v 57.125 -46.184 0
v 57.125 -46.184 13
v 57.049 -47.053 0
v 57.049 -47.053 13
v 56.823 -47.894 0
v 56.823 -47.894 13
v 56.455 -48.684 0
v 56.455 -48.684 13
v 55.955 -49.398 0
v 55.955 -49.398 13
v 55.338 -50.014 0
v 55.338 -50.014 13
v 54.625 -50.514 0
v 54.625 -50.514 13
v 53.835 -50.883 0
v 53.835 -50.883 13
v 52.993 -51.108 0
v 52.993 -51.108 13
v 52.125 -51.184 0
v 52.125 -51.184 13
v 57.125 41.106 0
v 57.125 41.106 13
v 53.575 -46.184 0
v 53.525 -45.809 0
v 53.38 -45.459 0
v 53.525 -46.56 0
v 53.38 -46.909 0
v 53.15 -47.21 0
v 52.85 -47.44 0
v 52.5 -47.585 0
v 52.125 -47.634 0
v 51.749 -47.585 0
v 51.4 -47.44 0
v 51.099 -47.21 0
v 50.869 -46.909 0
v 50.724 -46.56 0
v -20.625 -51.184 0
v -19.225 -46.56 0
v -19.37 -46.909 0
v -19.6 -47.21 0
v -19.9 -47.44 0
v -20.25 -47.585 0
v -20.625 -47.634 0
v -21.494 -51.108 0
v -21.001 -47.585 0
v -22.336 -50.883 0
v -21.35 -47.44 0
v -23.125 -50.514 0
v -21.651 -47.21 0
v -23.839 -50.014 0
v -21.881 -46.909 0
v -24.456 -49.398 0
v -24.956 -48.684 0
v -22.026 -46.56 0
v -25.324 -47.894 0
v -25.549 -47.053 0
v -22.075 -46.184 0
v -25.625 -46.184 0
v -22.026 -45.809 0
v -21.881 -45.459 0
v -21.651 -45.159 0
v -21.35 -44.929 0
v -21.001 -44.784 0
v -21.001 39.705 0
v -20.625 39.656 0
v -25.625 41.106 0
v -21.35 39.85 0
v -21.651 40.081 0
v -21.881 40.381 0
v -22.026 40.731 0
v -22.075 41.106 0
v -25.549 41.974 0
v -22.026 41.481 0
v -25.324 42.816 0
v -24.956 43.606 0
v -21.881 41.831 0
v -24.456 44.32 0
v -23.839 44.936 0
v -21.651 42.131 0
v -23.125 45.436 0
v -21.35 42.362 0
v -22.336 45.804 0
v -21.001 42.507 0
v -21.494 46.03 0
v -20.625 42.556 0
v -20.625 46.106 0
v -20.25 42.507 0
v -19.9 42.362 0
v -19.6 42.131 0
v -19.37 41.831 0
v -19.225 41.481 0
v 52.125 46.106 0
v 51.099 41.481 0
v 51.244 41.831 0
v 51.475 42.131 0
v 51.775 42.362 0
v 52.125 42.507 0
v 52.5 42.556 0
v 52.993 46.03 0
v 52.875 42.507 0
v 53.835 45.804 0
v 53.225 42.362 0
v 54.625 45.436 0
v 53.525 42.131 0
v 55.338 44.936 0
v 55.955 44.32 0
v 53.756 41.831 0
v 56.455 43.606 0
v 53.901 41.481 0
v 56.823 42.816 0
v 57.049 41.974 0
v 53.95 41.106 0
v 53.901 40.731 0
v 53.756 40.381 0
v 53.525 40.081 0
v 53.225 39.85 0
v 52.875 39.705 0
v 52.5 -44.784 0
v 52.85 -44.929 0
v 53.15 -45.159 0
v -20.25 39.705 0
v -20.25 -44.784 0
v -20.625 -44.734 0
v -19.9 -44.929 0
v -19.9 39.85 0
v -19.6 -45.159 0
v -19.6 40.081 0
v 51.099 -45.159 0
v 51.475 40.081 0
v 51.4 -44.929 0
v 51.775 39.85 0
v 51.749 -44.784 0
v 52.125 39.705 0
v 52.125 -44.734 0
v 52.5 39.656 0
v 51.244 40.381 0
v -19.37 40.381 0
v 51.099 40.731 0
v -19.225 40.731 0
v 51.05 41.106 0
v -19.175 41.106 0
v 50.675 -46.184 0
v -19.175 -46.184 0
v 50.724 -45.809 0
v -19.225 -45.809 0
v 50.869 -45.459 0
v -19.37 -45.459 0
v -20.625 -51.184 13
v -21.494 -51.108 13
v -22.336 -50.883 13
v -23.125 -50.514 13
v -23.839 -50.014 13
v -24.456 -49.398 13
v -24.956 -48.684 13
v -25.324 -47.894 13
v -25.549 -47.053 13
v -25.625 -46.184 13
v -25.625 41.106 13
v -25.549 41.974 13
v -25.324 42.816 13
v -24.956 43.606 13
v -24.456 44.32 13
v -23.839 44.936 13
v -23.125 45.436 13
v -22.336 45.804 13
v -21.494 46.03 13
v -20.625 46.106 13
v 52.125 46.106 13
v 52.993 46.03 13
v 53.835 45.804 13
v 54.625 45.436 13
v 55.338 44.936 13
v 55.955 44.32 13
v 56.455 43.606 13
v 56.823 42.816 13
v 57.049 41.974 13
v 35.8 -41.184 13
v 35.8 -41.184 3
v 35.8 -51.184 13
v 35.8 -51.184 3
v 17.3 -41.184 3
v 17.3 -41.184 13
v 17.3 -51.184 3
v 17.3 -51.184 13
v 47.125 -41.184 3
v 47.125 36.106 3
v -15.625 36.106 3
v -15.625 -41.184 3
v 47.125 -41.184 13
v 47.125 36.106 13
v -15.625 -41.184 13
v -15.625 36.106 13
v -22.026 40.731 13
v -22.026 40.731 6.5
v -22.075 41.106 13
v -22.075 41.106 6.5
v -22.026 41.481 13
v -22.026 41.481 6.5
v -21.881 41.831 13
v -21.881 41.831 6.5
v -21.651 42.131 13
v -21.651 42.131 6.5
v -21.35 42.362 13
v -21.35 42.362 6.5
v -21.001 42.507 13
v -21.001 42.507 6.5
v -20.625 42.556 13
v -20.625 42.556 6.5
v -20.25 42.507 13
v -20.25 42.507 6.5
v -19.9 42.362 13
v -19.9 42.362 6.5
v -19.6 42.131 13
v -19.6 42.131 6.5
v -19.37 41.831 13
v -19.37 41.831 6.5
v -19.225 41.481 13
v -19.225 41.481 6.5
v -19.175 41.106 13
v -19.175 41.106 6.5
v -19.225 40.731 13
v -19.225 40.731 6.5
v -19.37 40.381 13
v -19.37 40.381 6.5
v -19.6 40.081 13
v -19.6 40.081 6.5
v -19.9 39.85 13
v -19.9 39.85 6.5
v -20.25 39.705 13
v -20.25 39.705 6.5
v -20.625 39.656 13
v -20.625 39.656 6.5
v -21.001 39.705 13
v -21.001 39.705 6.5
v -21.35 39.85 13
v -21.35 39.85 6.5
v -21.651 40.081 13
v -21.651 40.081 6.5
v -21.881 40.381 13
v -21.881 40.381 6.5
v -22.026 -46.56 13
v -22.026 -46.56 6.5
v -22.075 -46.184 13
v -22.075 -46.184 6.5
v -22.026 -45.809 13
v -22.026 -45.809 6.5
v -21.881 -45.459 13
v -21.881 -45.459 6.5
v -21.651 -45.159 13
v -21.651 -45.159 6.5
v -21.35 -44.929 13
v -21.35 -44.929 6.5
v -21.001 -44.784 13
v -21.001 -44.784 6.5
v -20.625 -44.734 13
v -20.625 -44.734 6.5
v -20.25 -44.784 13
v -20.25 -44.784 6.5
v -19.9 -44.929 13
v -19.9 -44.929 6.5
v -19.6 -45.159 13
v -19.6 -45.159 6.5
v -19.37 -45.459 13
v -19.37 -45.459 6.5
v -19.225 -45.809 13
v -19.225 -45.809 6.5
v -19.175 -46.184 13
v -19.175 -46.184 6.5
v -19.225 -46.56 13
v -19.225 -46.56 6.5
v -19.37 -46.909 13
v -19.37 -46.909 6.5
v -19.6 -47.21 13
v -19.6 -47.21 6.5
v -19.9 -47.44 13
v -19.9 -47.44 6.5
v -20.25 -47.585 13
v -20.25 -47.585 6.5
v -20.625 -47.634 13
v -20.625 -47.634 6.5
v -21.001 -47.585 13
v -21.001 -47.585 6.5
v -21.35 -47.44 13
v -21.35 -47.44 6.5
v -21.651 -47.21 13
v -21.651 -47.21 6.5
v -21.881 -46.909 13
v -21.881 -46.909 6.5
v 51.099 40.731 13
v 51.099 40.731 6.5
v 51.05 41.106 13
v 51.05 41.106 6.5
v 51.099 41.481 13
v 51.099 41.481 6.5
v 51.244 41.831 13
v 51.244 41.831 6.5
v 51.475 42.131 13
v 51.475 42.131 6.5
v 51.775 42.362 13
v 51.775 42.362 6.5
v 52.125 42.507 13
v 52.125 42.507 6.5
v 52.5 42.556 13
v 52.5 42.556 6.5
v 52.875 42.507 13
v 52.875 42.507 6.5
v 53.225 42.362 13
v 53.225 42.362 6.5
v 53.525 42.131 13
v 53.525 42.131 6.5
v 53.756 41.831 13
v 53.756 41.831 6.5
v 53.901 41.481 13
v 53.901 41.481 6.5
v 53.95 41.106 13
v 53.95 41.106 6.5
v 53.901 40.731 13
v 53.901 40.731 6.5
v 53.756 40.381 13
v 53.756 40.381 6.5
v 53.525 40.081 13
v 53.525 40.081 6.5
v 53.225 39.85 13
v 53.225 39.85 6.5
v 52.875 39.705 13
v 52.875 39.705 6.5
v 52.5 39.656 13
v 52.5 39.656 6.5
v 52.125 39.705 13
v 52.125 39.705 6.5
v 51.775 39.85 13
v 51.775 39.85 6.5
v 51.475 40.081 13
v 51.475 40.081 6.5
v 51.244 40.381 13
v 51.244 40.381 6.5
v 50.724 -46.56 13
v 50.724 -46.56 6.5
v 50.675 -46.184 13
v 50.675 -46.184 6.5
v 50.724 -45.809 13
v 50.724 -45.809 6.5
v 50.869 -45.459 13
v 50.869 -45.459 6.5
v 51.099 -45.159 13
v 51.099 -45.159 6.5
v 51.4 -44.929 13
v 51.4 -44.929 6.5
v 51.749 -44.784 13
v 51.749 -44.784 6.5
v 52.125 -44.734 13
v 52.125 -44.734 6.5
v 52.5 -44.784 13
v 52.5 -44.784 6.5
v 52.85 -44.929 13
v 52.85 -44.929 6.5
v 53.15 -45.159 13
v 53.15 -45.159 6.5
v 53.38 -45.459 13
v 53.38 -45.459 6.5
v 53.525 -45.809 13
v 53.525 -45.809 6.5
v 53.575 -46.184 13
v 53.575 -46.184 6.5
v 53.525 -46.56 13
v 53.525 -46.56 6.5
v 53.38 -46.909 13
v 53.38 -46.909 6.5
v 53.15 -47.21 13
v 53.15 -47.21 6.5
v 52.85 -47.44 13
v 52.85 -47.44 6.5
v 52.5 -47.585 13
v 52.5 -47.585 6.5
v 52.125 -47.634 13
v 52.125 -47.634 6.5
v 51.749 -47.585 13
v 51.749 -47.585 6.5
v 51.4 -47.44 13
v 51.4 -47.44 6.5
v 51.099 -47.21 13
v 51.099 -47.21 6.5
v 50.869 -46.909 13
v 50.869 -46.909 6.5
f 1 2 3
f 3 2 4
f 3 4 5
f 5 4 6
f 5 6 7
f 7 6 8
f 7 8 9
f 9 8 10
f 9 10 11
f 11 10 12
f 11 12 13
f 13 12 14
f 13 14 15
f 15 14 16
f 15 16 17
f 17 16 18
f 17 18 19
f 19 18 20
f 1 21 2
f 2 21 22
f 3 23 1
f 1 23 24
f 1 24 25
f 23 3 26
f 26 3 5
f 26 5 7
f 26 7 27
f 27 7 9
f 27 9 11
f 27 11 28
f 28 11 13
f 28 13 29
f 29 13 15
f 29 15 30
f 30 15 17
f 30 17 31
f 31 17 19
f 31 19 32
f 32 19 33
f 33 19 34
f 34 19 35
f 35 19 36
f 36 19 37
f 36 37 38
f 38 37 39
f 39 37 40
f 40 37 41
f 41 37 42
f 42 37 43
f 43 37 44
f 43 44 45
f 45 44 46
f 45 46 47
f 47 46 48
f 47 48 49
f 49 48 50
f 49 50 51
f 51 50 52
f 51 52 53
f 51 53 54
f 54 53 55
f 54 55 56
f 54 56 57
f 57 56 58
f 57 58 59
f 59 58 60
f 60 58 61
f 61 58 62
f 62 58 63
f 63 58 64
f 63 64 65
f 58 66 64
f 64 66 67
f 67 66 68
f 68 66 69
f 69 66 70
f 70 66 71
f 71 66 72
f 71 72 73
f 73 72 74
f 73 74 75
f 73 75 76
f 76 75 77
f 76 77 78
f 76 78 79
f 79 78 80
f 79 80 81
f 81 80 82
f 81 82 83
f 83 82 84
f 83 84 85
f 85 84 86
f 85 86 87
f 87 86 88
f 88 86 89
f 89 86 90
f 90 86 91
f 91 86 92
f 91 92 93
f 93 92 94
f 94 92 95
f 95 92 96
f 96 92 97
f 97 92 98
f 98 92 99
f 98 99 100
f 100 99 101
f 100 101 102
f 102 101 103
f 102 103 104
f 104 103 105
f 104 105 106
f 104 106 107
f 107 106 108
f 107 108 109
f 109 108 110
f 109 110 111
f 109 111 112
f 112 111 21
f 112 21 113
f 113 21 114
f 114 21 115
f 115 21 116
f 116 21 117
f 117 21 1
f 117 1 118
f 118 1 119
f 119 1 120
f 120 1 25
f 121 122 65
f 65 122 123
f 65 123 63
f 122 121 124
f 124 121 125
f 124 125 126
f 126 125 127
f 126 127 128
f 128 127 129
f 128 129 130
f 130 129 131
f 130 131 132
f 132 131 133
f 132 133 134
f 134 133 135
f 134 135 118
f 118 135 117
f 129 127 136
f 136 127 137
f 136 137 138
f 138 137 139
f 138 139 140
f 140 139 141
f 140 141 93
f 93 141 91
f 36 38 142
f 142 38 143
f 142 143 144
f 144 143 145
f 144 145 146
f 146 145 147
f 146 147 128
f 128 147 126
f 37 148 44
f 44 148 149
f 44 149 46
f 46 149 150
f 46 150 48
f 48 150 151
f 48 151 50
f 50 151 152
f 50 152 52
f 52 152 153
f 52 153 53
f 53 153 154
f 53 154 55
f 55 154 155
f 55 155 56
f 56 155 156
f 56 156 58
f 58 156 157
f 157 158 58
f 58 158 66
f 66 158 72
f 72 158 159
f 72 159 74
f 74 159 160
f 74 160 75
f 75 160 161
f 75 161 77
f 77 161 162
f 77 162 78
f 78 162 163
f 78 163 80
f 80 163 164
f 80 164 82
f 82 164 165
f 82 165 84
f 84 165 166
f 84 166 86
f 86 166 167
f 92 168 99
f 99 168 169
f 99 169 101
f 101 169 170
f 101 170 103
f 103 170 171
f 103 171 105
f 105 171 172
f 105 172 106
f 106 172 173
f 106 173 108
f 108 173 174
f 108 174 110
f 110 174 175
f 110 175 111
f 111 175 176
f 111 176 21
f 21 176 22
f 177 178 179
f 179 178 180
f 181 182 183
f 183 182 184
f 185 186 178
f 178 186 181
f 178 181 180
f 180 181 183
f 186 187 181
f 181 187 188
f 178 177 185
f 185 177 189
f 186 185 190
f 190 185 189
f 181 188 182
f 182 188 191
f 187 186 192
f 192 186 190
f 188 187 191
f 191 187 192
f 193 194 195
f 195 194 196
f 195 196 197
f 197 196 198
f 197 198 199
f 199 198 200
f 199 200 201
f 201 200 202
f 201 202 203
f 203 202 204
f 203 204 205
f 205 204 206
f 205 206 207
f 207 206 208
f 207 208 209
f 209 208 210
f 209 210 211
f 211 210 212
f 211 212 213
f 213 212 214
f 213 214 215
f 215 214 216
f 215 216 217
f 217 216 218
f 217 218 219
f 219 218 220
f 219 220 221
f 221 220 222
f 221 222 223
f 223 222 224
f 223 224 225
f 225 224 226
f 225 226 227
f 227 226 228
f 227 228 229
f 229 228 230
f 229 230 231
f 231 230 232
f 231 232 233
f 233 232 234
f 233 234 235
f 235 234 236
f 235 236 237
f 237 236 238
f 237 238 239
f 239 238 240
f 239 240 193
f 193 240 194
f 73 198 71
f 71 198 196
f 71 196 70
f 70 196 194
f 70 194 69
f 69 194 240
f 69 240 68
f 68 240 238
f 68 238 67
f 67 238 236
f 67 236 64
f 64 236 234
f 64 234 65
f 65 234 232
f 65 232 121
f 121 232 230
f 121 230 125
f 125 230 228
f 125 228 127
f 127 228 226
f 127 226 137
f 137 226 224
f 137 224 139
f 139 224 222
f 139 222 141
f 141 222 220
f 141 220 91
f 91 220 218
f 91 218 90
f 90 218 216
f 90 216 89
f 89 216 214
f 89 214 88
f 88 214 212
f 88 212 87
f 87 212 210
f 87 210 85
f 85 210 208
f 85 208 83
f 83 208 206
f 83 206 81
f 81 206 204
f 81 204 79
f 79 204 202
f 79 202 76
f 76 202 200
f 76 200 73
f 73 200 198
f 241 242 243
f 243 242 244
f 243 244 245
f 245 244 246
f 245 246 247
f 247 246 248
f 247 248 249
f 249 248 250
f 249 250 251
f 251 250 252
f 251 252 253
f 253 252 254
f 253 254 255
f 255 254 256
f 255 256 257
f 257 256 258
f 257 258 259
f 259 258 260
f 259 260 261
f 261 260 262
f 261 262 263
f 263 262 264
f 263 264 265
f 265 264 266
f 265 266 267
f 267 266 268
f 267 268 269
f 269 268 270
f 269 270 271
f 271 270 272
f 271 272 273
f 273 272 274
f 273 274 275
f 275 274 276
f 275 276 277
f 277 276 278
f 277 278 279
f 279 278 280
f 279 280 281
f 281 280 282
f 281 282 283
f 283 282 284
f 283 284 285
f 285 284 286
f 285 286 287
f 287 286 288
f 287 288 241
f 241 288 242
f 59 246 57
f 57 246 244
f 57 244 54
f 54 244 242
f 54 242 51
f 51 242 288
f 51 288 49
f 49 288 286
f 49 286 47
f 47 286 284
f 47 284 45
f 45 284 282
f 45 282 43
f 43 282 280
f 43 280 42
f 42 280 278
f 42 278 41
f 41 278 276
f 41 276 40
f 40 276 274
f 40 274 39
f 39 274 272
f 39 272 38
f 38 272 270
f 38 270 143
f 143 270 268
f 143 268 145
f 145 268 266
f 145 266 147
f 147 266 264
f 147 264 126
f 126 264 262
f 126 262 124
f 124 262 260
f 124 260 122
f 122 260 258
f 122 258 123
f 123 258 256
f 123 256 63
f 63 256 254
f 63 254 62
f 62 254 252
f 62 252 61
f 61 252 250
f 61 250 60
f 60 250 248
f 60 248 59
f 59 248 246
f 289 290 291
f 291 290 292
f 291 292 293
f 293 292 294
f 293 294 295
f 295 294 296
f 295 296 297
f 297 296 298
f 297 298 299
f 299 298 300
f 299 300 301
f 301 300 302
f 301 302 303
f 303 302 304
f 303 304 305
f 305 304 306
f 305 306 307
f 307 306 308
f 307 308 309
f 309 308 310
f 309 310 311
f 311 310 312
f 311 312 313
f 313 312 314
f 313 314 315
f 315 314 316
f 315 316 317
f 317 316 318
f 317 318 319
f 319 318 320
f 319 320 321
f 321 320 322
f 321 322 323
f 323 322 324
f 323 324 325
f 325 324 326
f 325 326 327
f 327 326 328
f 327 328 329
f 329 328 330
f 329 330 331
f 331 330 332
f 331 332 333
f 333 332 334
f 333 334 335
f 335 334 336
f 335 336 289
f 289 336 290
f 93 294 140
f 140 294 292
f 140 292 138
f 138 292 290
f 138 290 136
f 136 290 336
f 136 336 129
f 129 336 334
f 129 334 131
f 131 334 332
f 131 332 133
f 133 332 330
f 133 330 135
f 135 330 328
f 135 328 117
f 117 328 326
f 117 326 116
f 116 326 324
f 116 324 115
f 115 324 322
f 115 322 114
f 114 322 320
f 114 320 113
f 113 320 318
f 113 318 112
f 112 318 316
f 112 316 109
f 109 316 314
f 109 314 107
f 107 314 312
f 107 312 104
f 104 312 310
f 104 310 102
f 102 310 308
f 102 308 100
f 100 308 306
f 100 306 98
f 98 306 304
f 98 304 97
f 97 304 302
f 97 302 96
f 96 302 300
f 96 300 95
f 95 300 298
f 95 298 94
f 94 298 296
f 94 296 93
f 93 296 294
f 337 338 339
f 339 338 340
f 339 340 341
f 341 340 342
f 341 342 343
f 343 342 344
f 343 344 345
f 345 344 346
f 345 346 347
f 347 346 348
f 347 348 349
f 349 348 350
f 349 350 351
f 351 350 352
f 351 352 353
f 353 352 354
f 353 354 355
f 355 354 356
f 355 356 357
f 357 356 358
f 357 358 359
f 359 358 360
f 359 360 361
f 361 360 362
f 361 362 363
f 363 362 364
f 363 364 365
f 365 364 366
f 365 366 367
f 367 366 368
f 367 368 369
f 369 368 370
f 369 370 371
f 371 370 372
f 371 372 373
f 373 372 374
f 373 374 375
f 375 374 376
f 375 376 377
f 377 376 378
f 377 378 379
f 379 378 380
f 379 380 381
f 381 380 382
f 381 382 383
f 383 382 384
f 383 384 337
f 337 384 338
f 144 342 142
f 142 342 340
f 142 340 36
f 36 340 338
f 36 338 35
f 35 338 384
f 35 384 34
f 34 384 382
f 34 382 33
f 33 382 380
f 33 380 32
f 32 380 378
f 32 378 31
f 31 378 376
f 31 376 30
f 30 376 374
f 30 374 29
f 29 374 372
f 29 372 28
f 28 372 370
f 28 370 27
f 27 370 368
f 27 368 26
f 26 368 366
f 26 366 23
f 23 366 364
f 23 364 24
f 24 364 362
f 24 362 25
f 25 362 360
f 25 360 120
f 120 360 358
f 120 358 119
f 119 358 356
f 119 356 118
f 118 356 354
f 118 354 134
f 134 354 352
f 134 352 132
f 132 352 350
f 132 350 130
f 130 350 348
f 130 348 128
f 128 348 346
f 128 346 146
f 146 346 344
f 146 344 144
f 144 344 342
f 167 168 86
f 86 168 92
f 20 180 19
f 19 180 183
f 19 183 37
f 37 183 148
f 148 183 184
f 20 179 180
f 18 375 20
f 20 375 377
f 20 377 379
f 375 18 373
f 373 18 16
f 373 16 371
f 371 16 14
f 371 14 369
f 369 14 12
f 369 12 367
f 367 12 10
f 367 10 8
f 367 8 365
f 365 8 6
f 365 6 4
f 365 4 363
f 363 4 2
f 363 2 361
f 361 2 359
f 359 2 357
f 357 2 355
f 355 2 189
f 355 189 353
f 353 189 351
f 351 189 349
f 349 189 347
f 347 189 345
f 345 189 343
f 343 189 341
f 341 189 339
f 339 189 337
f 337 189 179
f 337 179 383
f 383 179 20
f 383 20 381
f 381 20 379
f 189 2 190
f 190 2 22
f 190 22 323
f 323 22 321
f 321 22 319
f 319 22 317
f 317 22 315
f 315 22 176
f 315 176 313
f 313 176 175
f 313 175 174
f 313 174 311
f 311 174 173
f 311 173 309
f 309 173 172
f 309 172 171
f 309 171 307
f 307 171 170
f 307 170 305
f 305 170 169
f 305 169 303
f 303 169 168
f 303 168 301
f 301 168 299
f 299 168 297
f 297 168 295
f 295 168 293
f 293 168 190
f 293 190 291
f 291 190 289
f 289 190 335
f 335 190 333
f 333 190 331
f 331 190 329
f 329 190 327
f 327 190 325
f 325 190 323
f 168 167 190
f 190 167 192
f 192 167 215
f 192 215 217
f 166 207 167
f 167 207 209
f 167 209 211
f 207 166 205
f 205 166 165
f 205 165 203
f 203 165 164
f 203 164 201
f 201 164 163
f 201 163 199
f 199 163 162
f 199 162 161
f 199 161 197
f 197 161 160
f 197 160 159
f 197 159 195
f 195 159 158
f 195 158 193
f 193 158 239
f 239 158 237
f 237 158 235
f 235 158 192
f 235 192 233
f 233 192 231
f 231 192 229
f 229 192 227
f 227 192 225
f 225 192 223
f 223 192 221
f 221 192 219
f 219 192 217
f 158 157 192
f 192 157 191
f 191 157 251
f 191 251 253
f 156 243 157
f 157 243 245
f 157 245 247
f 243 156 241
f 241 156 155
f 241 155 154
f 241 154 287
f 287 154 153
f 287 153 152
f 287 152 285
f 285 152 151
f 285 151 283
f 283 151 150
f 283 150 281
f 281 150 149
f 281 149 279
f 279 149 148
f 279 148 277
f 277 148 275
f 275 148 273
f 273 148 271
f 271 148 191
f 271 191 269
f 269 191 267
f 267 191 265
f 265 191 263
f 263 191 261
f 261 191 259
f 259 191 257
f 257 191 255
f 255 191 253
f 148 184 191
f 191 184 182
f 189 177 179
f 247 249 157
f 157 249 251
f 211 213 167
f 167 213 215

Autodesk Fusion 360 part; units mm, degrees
sketch "Sketch1" plane through (0, 0, 0) normal (0, 0, 1) x (1, 0, 0)
  line L0 (-15.6254, 36.106) -> (47.1246, 36.106)
  line L1 (47.1246, 36.106) -> (47.1246, -41.1843)
  line L2 (47.1246, -41.1843) -> (-15.6254, -41.1843)
  line L3 (-15.6254, -41.1843) -> (-15.6254, 36.106)
  line L4 (-25.6254, 46.106) -> (57.1246, 46.106)
  line L5 (57.1246, 46.106) -> (57.1246, -51.1843)
  line L6 (57.1246, -51.1843) -> (-25.6254, -51.1843)
  line L7 (-25.6254, -51.1843) -> (-25.6254, 46.106)
  circle A0 centre (-20.6254, 41.106) radius 1.45
  circle A1 centre (52.5, 41.106) radius 1.45
  circle A2 centre (52.1246, -46.1843) radius 1.45
  circle A3 centre (-20.6254, -46.1843) radius 1.45
  dimension "d1" = 77.2903
  dimension "d2" = 62.75
  dimension "d3" = 10
  dimension "d4" = 10
  dimension "d5" = 10
  dimension "d6" = 10
  dimension "d7" = 2.9
  dimension "d8" = 5
  dimension "d9" = 5
  dimension "d10" = 2.9
  dimension "d11" = 2.9
  dimension "d12" = 2.9
  dimension "d13" = 5
  dimension "d14" = 5
  dimension "d15" = 5
  dimension "d16" = 5
  dimension "d17" = 5
extrude "Extrude3" add sketch "Sketch1" along normal blind 3 contours L0 L1 L2 L3
extrude "Extrude4" add sketch "Sketch1" along normal blind 13
sketch "Sketch3" plane through (0, -51.1843, 0) normal (0, -1, 0) x (1, 0, 0)
  line L0 (-25.6254, 0) -> (57.1246, 0)
  line L1 (57.1246, 0) -> (57.1246, 13)
  line L2 (57.1246, 13) -> (-25.6254, 13)
  line L3 (-25.6254, 13) -> (-25.6254, 0)
  line L4 (17.2996, 13) -> (35.7996, 13)
  line L5 (35.7996, 13) -> (35.7996, 3)
  line L6 (35.7996, 3) -> (17.2996, 3)
  line L7 (17.2996, 3) -> (17.2996, 13)
  dimension "d26" = 21.325
  dimension "d27" = 18.5
extrude "Extrude5" cut sketch "Sketch3" against normal blind 13 contours L2 L4 L5 L6 L7
fillet "Fillet1" radius 5 4 edges at (57.1246, 46.106, 6.5) (-25.6254, 46.106, 6.5) (-25.6254, -51.1843, 6.5) (57.1246, -51.1843, 6.5)
extrude "Extrude1" [suppressed]
extrude "Extrude2" [suppressed]
